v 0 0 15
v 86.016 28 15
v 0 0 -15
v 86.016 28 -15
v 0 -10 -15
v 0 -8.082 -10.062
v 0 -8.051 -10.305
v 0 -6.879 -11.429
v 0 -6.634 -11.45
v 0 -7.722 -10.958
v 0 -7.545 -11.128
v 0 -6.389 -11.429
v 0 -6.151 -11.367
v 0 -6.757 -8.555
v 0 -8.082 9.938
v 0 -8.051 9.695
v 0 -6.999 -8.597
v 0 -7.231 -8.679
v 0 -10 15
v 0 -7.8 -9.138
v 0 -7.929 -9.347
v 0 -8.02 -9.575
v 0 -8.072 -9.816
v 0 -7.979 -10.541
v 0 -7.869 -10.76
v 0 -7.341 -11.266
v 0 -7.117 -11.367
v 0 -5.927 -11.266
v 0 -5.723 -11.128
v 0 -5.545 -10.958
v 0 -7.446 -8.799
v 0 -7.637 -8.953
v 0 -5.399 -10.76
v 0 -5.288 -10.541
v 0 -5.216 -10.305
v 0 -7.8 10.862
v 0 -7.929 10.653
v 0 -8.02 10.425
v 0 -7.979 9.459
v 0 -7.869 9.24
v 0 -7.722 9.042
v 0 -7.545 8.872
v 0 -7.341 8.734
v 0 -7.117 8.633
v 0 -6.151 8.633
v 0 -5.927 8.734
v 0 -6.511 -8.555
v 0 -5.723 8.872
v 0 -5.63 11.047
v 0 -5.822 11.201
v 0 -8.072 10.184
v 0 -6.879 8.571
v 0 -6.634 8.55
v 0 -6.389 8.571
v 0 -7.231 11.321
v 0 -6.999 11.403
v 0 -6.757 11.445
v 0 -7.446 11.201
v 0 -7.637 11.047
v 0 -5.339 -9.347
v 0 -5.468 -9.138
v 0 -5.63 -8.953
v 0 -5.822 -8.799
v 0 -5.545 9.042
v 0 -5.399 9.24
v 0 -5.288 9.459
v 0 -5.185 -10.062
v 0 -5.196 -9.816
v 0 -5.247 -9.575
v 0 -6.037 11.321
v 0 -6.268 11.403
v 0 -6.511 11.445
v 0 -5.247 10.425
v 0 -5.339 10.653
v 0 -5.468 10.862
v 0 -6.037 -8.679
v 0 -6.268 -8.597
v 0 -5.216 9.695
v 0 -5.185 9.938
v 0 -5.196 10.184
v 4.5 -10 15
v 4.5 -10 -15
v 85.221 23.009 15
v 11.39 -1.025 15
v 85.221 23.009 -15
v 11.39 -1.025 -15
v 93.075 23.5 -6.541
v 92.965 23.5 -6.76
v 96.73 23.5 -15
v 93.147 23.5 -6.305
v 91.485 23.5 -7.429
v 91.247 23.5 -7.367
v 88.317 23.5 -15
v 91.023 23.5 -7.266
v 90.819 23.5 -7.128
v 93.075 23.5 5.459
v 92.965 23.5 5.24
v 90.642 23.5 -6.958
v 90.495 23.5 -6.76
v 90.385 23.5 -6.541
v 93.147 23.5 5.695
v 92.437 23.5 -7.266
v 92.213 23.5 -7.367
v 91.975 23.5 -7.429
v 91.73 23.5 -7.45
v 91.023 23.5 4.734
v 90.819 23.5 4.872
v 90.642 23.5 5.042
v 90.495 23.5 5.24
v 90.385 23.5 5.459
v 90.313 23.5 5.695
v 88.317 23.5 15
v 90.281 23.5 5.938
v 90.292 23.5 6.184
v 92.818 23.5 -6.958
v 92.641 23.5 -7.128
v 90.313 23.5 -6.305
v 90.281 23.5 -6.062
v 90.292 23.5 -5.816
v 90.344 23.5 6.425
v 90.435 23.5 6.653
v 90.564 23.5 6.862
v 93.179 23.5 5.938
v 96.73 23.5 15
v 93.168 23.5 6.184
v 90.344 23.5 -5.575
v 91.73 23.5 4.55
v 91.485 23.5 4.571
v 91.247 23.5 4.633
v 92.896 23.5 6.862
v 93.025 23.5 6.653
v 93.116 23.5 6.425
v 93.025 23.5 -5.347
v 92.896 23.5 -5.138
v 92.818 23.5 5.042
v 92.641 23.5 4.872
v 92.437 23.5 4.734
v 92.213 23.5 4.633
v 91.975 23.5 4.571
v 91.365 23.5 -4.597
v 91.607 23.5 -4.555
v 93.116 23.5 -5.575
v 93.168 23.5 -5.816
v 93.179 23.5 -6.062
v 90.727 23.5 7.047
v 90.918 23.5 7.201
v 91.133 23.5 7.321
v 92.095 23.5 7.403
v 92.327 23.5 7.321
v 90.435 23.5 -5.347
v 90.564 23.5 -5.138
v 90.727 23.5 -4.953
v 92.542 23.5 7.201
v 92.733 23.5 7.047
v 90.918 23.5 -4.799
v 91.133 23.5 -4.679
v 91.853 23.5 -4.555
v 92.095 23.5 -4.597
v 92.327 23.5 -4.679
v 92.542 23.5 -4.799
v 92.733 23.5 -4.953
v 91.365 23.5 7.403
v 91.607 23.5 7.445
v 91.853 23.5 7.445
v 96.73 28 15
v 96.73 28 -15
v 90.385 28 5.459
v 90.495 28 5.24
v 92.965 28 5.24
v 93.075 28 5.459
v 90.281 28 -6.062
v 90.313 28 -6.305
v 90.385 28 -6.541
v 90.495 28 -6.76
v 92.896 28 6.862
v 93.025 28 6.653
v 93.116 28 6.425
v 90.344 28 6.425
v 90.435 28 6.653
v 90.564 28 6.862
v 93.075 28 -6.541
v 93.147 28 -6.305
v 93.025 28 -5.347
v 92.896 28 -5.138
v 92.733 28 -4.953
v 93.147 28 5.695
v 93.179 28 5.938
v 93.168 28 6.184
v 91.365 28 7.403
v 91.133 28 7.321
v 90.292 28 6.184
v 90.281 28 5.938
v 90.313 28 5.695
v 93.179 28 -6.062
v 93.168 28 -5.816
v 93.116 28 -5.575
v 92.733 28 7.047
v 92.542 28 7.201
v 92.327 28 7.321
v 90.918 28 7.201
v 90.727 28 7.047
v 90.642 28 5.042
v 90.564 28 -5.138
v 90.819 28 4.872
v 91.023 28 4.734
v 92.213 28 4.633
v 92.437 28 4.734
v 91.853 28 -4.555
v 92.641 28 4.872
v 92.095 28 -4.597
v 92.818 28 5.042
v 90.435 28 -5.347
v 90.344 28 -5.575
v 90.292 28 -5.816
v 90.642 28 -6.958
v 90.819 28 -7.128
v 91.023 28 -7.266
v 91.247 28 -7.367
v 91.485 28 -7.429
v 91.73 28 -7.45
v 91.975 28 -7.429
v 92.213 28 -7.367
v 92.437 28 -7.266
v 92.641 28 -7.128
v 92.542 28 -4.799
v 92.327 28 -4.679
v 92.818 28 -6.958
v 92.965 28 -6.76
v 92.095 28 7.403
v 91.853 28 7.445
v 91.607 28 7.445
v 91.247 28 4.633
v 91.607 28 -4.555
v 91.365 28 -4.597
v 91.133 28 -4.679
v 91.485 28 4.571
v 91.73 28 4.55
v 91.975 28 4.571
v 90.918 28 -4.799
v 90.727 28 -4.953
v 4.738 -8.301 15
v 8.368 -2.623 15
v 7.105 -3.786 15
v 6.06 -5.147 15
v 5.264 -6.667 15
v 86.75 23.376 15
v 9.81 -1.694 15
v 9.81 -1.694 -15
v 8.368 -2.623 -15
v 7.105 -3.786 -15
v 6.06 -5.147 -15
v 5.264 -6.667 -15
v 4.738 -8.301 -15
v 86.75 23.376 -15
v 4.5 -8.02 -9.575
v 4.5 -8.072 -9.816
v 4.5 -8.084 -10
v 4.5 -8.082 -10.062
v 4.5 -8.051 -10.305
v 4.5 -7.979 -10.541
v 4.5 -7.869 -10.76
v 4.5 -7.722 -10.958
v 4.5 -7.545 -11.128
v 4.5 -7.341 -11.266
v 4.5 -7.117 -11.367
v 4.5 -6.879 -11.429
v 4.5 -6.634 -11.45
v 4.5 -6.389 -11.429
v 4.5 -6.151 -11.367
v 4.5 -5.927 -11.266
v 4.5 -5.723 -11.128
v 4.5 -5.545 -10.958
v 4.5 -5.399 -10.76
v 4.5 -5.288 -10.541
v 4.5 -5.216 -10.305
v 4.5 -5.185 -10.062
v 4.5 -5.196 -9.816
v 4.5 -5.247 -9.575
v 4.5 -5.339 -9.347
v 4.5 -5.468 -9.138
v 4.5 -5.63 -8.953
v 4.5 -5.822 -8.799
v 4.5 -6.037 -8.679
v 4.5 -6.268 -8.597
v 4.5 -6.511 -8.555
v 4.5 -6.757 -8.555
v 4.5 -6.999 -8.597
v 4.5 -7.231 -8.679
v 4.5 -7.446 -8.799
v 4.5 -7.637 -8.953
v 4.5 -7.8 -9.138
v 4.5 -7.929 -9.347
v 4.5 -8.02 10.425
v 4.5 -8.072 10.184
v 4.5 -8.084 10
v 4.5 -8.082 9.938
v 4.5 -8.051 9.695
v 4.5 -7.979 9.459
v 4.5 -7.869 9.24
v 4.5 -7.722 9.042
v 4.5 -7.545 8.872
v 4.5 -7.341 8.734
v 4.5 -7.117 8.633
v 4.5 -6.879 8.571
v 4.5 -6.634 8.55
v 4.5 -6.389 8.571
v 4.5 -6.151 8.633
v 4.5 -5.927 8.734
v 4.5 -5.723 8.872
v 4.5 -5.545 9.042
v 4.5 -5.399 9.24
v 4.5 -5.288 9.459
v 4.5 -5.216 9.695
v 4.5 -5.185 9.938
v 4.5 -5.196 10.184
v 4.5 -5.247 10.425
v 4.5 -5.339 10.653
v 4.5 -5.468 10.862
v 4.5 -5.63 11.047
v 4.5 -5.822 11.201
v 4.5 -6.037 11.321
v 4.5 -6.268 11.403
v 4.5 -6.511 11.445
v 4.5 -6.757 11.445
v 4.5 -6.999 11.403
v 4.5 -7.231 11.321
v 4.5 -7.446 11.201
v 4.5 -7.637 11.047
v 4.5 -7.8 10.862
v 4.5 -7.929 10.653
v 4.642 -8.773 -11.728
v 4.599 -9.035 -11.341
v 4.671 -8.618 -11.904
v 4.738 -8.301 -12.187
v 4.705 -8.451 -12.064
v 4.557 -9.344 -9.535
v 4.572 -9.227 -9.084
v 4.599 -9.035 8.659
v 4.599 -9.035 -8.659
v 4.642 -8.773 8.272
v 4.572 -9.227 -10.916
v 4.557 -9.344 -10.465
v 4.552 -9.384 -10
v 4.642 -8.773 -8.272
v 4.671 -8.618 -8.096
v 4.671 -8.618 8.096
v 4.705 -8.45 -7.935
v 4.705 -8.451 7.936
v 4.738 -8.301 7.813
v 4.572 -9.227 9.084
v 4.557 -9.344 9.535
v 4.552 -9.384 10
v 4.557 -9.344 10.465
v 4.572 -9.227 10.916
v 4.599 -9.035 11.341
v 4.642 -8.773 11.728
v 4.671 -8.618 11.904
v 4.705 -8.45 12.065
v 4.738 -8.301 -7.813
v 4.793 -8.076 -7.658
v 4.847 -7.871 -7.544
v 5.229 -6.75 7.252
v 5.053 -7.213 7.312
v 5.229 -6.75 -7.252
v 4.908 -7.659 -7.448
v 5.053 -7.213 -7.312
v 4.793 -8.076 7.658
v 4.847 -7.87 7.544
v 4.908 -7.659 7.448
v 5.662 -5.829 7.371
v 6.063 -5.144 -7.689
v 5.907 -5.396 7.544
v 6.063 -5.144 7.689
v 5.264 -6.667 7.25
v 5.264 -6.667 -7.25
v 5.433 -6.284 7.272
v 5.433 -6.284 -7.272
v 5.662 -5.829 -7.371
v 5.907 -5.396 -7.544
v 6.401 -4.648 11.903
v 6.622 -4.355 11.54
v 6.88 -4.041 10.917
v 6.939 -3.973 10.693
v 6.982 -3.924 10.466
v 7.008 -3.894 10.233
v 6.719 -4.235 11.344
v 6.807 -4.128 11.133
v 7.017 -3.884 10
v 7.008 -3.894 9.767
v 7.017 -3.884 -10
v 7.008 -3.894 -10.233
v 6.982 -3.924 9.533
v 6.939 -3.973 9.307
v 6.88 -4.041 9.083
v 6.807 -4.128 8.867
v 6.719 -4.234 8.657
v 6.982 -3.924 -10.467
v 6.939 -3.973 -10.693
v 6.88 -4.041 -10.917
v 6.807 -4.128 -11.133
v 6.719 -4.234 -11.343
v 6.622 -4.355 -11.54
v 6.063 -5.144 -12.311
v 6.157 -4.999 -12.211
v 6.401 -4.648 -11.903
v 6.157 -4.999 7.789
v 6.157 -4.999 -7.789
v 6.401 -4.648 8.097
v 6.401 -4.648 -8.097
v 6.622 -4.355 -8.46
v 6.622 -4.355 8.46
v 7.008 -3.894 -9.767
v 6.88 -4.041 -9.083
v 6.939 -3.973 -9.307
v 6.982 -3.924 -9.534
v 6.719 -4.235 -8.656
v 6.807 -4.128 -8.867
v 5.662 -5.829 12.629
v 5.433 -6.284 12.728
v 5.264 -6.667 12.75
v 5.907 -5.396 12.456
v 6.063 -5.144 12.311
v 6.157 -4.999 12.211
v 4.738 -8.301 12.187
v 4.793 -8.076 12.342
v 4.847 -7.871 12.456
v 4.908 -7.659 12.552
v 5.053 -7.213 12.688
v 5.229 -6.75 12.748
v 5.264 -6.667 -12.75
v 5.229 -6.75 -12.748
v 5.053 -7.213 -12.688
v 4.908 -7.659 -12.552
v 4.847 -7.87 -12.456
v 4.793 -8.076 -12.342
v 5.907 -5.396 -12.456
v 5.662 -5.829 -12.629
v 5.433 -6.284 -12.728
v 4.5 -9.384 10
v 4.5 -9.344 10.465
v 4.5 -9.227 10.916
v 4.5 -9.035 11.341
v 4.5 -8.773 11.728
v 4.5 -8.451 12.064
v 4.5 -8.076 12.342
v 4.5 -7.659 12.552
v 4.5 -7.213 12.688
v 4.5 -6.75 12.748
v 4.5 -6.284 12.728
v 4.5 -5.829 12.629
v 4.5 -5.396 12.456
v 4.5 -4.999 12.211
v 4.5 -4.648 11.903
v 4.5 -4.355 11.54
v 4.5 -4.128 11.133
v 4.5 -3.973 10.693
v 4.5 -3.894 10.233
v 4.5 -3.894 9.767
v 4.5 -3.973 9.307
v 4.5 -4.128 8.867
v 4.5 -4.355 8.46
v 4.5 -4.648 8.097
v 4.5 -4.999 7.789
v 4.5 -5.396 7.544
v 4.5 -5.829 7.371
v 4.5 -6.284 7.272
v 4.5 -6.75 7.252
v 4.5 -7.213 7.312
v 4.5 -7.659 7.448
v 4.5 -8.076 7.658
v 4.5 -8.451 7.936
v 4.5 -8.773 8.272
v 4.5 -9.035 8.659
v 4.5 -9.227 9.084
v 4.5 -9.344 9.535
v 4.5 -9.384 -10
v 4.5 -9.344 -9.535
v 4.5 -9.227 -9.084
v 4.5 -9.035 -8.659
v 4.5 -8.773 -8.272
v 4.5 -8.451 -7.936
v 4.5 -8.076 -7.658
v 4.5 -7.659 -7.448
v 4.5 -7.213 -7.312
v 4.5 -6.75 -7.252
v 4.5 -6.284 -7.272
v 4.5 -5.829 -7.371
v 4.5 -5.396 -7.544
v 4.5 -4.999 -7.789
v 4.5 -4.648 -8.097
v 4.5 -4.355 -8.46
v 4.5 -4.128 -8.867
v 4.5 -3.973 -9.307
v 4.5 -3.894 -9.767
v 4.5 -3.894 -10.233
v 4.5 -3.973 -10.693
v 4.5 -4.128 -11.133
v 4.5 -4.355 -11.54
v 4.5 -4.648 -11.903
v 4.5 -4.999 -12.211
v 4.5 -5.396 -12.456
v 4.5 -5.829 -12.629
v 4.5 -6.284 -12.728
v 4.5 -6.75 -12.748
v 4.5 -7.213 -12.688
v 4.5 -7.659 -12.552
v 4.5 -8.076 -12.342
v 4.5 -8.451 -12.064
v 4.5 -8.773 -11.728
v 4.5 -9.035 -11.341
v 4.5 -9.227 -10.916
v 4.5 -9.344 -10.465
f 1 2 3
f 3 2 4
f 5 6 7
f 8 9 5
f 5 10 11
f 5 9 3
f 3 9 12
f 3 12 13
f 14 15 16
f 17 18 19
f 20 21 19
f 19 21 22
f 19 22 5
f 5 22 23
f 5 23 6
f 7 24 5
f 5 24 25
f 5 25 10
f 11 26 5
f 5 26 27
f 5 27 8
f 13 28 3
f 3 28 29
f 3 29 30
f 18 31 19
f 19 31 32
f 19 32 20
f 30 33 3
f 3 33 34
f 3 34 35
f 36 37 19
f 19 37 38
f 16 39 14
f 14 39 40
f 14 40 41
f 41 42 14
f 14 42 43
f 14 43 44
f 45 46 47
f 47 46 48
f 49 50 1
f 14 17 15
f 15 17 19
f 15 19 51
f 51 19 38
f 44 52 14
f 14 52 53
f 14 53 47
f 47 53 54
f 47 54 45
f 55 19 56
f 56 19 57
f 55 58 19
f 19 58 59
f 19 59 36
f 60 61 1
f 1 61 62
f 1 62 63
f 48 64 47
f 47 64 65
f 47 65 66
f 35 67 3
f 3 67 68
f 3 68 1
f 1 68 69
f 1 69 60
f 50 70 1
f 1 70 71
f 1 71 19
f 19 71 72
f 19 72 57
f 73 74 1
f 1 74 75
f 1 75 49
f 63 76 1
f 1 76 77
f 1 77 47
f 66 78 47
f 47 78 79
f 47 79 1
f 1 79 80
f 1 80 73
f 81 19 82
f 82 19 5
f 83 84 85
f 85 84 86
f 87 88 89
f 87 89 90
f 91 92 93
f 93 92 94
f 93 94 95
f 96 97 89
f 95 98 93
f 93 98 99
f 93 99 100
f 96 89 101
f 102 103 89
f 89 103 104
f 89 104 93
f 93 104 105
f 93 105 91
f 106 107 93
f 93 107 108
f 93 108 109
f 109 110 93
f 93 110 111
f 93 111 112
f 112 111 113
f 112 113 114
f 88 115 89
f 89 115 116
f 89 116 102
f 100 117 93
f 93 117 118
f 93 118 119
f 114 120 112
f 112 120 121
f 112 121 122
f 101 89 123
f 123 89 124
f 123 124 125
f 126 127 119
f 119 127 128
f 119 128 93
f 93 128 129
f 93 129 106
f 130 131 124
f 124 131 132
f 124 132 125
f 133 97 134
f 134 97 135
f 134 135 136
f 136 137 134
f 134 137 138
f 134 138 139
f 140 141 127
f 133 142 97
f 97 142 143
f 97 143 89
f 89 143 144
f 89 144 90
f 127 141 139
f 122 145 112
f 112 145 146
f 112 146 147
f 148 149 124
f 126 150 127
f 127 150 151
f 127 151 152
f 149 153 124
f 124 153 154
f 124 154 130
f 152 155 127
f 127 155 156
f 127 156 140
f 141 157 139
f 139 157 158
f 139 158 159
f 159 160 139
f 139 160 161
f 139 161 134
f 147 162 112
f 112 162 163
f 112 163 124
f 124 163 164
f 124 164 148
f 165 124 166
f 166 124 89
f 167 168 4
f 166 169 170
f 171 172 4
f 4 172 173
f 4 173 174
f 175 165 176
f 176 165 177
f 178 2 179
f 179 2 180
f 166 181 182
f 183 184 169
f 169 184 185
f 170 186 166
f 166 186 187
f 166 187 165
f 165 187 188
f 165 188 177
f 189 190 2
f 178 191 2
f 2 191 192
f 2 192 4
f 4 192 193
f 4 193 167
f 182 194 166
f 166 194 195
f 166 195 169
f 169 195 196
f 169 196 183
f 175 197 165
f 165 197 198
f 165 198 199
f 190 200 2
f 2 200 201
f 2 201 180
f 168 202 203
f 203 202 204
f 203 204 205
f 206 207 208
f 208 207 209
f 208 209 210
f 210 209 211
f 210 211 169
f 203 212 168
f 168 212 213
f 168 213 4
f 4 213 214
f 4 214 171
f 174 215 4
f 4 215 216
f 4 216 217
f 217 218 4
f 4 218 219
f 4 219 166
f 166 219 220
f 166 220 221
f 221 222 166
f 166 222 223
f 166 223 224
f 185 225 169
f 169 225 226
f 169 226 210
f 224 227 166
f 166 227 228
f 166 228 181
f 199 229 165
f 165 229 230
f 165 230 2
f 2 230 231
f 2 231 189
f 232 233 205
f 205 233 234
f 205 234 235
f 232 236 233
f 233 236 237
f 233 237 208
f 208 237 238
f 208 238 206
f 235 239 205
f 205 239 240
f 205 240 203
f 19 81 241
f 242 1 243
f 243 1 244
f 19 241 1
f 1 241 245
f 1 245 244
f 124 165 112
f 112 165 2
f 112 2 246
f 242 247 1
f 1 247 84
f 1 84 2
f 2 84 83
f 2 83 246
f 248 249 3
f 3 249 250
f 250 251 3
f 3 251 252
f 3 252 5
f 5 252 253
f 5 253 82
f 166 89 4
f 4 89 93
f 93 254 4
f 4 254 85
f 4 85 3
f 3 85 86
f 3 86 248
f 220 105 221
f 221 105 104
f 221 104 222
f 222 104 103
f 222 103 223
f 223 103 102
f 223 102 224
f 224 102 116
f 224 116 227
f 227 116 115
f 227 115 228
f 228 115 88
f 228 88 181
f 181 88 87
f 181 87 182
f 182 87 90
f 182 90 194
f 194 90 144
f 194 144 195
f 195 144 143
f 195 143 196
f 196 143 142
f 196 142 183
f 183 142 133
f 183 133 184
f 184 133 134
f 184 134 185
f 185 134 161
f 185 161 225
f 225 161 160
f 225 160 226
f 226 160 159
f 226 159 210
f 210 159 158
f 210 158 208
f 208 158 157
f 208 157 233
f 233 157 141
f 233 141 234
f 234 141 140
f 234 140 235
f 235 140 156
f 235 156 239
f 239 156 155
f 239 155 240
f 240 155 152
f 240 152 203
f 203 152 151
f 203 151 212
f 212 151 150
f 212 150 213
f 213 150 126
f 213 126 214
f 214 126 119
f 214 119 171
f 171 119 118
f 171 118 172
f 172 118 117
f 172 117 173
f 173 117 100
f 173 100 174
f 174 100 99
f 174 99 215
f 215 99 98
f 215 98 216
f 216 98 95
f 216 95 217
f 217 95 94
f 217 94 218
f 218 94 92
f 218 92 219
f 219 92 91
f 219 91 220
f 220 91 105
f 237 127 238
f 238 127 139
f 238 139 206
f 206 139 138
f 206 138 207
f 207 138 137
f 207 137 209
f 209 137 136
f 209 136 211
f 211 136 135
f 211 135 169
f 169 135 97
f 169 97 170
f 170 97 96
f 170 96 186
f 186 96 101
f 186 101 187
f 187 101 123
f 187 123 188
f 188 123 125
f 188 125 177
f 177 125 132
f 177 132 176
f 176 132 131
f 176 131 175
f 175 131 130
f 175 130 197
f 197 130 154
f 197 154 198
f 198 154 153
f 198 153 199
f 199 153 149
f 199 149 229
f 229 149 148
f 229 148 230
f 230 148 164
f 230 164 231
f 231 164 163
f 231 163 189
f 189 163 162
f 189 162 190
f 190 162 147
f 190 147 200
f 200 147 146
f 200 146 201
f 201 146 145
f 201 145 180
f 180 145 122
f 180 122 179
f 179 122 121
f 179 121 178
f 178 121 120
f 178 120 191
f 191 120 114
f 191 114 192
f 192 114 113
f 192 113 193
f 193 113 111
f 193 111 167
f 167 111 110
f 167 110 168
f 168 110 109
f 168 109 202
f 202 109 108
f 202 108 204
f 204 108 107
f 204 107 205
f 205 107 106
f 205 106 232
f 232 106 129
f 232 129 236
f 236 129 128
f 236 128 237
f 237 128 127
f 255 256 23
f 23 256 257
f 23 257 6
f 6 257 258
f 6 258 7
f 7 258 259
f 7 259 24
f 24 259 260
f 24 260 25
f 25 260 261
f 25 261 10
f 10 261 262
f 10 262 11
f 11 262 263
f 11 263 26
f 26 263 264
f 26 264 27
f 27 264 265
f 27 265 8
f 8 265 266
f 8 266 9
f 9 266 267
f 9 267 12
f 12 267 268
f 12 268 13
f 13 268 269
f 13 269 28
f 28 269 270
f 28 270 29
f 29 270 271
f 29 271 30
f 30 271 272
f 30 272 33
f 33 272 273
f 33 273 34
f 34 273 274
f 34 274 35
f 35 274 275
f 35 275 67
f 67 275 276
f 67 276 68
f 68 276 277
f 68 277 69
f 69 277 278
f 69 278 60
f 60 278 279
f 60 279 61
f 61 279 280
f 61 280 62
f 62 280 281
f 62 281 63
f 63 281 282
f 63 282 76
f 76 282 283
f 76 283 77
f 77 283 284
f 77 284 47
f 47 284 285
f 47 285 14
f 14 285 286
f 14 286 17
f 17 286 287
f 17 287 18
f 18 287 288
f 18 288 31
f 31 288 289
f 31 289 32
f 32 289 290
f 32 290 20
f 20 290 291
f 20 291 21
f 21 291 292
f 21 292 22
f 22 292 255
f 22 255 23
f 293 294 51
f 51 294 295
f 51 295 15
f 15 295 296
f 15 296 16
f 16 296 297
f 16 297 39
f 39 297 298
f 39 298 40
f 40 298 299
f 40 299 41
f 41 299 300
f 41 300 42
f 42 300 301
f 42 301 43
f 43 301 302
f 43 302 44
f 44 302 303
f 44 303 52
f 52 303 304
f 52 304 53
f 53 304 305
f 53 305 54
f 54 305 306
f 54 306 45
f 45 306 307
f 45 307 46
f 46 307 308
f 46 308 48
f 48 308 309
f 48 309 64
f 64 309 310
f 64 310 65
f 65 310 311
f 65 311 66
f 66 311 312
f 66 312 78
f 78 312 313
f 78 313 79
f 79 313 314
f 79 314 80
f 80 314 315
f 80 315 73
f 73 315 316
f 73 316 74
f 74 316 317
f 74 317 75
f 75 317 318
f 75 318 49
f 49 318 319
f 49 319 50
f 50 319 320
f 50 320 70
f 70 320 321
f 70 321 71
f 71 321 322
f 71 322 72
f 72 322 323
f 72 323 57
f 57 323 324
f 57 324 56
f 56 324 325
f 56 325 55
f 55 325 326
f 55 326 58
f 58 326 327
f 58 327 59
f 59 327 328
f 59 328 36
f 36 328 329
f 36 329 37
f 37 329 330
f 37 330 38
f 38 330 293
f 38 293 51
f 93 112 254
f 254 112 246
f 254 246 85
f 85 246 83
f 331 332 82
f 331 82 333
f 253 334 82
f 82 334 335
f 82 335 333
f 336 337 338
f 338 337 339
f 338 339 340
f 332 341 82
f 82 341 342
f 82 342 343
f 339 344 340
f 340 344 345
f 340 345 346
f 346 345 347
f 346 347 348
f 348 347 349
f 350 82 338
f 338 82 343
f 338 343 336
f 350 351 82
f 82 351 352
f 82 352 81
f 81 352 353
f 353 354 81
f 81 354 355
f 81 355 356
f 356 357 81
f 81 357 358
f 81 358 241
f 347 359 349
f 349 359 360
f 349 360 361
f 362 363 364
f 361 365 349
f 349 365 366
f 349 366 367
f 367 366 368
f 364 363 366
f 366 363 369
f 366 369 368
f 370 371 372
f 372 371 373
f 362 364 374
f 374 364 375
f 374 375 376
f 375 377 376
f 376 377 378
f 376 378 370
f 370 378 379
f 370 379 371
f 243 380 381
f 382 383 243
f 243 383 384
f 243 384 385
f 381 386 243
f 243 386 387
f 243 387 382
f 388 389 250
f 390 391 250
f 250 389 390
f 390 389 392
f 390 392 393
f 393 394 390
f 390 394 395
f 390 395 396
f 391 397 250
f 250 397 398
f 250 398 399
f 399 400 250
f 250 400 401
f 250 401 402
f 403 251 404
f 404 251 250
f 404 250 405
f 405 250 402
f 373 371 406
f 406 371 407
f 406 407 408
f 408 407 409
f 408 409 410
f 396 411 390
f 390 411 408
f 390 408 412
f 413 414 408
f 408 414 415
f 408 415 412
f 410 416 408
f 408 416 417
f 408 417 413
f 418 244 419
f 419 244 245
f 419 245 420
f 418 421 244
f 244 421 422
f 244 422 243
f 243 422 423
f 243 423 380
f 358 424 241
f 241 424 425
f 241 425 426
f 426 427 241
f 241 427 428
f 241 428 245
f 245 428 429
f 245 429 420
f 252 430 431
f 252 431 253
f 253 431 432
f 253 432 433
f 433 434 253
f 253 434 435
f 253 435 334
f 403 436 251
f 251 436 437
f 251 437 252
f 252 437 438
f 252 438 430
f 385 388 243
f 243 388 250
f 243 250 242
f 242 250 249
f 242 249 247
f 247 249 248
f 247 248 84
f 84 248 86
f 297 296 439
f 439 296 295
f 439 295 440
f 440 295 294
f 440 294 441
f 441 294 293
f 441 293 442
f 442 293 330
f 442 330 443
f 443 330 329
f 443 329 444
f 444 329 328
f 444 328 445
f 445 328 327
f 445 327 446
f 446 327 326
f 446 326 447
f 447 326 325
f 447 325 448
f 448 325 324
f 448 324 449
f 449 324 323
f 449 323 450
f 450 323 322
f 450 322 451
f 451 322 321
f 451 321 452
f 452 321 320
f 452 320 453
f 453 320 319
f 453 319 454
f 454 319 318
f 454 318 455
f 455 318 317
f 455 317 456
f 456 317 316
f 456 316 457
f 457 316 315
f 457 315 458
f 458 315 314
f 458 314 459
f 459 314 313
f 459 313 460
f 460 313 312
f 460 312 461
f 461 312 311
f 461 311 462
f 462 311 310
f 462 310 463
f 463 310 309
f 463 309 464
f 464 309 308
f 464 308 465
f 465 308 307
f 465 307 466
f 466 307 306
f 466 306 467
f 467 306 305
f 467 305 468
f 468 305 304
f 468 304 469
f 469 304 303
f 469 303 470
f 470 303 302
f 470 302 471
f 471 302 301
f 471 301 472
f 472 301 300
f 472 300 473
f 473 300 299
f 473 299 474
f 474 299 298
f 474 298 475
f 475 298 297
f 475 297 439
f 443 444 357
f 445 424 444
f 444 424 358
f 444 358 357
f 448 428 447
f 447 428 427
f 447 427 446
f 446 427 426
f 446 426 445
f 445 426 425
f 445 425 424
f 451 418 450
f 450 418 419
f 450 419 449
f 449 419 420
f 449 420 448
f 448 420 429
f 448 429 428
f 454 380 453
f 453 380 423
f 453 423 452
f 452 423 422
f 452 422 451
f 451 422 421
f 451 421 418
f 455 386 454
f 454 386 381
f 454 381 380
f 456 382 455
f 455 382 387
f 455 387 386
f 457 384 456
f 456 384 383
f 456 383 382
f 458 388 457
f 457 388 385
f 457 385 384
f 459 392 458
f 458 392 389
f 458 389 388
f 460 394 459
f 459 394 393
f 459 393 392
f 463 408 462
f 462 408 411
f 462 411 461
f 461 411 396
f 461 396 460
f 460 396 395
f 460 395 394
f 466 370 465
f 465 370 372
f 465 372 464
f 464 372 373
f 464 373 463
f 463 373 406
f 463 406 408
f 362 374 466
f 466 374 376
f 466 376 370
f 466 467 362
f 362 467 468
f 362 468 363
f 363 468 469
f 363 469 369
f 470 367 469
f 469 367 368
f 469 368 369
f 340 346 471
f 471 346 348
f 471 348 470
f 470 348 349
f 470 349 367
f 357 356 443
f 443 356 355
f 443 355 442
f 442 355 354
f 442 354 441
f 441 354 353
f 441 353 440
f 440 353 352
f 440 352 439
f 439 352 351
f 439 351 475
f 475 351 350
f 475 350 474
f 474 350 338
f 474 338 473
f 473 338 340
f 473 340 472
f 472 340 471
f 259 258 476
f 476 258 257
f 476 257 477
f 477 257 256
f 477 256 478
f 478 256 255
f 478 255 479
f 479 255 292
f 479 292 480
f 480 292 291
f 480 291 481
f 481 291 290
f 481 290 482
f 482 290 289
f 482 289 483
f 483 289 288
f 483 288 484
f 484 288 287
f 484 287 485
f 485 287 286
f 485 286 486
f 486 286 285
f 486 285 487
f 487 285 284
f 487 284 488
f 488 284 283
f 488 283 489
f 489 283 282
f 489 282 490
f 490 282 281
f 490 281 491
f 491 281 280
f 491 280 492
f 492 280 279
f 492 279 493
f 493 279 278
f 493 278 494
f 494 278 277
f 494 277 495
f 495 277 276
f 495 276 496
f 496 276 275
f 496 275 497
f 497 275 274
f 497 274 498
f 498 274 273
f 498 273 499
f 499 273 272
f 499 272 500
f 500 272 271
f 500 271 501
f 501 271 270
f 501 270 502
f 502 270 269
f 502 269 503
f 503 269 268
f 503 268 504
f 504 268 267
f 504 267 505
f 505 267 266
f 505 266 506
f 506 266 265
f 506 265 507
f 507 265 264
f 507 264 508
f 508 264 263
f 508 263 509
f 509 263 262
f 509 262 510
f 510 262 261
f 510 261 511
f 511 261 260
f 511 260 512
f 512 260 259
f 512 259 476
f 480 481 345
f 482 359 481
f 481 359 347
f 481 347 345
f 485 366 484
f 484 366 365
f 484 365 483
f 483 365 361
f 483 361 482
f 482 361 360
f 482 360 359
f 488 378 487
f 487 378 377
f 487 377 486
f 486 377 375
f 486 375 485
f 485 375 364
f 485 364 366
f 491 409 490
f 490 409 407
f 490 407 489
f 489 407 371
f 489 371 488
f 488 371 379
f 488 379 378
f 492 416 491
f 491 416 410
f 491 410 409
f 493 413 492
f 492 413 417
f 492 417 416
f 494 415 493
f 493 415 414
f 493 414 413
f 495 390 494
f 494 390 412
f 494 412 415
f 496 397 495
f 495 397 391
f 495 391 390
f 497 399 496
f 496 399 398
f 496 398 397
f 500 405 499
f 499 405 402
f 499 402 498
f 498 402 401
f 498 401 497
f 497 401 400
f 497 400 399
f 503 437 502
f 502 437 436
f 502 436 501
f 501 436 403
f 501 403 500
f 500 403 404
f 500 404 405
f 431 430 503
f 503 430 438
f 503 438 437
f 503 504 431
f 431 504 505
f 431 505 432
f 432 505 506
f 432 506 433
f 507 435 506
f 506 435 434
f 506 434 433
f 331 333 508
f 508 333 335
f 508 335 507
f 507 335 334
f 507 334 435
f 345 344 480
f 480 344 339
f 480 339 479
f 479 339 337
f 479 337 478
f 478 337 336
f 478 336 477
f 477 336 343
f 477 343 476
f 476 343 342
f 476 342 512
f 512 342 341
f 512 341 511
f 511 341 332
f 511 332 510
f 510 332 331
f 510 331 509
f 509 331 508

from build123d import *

# Parameters (mm, degrees)
BOSS_EXTRUDE1_DEPTH    = 15
M2_5_CLEARANCE_HOLE1_D = 2.9
M2_5_CLEARANCE_HOLE2_D = 2.9
FILLET1_START          = -15
FILLET1_DEPTH          = 30
FILLET1_START_2        = 4.5
FILLET1_2_OUTLINE_R    = 1.45
FILLET1_2_DEPTH        = 2.5
CUT_EXTRUDE1_START     = -4.5
SKETCH6_R              = 2.75
SKETCH6_R_2            = 2.749999999
CUT_EXTRUDE1_DEPTH     = 10


with BuildPart() as part:
    # Sketch1 → Boss-Extrude1 (new, symmetric)
    with BuildSketch(Plane.XY):
        Polygon((0, 0), (0, -10), (4.5, -10), (4.5, -3.267573076), (86.73, 23.5), (96.73, 23.5), (96.73, 28), (86.016016224, 28), align=None)
    extrude(amount=BOSS_EXTRUDE1_DEPTH, both=True)

    # M2.5 Clearance Hole1 (through all)
    with Locations(Plane(origin=(0, 23.5, 0), x_dir=(-1, 0, 0), z_dir=(0, -1, 0))):
        with Locations((-91.73, -6), (-91.73, 6)):
            Hole(M2_5_CLEARANCE_HOLE1_D / 2)

    # M2.5 Clearance Hole2 (through all)
    with Locations(Plane(origin=(4.5, 0, 0), x_dir=(0, 0, -1), z_dir=(1, 0, 0))):
        with Locations((-10, -6.633786538), (10, -6.633786538)):
            Hole(M2_5_CLEARANCE_HOLE2_D / 2)

    # Fillet1: read off the stored shape, not the designer's step
    # Fillet1 outline → Fillet1 (add)
    with BuildSketch(Plane.XY.offset(FILLET1_START)):
        with BuildLine():
            ThreePointArc((4.5, -10), (6.553657374, -4.444003243), (11.390420445, -1.024598094))
            Line((11.390420445, -1.024598094), (4.5, -3.267573076))
            Line((4.5, -3.267573076), (4.5, -10))
        make_face()
        with BuildLine():
            ThreePointArc((85.221291355, 23.008883997), (86.749601573, 23.376457866), (88.316630614, 23.5))
            Line((88.316630614, 23.5), (86.73, 23.5))
            Line((86.73, 23.5), (85.221291355, 23.008883997))
        make_face()
    extrude(amount=FILLET1_DEPTH)

    # Fillet1 2 outline → Fillet1 2 (cut)
    with BuildSketch(Plane.YZ.offset(FILLET1_START_2)):
        with Locations((-6.633786538, -10)):
            Circle(FILLET1_2_OUTLINE_R)
        with Locations((-6.633786538, 10)):
            Circle(FILLET1_2_OUTLINE_R)
    extrude(amount=FILLET1_2_DEPTH, mode=Mode.SUBTRACT)

    # Sketch6 → Cut-Extrude1 (cut)
    with BuildSketch(Plane.ZY.offset(CUT_EXTRUDE1_START)):
        with Locations(Location((-10, -6.633786538, 0), (0, 0, 270))):
            Circle(SKETCH6_R)
        with Locations(Location((10, -6.633786538, 0), (0, 0, 270))):
            Circle(SKETCH6_R_2)
    extrude(amount=-CUT_EXTRUDE1_DEPTH, mode=Mode.SUBTRACT)


solid = part.part
